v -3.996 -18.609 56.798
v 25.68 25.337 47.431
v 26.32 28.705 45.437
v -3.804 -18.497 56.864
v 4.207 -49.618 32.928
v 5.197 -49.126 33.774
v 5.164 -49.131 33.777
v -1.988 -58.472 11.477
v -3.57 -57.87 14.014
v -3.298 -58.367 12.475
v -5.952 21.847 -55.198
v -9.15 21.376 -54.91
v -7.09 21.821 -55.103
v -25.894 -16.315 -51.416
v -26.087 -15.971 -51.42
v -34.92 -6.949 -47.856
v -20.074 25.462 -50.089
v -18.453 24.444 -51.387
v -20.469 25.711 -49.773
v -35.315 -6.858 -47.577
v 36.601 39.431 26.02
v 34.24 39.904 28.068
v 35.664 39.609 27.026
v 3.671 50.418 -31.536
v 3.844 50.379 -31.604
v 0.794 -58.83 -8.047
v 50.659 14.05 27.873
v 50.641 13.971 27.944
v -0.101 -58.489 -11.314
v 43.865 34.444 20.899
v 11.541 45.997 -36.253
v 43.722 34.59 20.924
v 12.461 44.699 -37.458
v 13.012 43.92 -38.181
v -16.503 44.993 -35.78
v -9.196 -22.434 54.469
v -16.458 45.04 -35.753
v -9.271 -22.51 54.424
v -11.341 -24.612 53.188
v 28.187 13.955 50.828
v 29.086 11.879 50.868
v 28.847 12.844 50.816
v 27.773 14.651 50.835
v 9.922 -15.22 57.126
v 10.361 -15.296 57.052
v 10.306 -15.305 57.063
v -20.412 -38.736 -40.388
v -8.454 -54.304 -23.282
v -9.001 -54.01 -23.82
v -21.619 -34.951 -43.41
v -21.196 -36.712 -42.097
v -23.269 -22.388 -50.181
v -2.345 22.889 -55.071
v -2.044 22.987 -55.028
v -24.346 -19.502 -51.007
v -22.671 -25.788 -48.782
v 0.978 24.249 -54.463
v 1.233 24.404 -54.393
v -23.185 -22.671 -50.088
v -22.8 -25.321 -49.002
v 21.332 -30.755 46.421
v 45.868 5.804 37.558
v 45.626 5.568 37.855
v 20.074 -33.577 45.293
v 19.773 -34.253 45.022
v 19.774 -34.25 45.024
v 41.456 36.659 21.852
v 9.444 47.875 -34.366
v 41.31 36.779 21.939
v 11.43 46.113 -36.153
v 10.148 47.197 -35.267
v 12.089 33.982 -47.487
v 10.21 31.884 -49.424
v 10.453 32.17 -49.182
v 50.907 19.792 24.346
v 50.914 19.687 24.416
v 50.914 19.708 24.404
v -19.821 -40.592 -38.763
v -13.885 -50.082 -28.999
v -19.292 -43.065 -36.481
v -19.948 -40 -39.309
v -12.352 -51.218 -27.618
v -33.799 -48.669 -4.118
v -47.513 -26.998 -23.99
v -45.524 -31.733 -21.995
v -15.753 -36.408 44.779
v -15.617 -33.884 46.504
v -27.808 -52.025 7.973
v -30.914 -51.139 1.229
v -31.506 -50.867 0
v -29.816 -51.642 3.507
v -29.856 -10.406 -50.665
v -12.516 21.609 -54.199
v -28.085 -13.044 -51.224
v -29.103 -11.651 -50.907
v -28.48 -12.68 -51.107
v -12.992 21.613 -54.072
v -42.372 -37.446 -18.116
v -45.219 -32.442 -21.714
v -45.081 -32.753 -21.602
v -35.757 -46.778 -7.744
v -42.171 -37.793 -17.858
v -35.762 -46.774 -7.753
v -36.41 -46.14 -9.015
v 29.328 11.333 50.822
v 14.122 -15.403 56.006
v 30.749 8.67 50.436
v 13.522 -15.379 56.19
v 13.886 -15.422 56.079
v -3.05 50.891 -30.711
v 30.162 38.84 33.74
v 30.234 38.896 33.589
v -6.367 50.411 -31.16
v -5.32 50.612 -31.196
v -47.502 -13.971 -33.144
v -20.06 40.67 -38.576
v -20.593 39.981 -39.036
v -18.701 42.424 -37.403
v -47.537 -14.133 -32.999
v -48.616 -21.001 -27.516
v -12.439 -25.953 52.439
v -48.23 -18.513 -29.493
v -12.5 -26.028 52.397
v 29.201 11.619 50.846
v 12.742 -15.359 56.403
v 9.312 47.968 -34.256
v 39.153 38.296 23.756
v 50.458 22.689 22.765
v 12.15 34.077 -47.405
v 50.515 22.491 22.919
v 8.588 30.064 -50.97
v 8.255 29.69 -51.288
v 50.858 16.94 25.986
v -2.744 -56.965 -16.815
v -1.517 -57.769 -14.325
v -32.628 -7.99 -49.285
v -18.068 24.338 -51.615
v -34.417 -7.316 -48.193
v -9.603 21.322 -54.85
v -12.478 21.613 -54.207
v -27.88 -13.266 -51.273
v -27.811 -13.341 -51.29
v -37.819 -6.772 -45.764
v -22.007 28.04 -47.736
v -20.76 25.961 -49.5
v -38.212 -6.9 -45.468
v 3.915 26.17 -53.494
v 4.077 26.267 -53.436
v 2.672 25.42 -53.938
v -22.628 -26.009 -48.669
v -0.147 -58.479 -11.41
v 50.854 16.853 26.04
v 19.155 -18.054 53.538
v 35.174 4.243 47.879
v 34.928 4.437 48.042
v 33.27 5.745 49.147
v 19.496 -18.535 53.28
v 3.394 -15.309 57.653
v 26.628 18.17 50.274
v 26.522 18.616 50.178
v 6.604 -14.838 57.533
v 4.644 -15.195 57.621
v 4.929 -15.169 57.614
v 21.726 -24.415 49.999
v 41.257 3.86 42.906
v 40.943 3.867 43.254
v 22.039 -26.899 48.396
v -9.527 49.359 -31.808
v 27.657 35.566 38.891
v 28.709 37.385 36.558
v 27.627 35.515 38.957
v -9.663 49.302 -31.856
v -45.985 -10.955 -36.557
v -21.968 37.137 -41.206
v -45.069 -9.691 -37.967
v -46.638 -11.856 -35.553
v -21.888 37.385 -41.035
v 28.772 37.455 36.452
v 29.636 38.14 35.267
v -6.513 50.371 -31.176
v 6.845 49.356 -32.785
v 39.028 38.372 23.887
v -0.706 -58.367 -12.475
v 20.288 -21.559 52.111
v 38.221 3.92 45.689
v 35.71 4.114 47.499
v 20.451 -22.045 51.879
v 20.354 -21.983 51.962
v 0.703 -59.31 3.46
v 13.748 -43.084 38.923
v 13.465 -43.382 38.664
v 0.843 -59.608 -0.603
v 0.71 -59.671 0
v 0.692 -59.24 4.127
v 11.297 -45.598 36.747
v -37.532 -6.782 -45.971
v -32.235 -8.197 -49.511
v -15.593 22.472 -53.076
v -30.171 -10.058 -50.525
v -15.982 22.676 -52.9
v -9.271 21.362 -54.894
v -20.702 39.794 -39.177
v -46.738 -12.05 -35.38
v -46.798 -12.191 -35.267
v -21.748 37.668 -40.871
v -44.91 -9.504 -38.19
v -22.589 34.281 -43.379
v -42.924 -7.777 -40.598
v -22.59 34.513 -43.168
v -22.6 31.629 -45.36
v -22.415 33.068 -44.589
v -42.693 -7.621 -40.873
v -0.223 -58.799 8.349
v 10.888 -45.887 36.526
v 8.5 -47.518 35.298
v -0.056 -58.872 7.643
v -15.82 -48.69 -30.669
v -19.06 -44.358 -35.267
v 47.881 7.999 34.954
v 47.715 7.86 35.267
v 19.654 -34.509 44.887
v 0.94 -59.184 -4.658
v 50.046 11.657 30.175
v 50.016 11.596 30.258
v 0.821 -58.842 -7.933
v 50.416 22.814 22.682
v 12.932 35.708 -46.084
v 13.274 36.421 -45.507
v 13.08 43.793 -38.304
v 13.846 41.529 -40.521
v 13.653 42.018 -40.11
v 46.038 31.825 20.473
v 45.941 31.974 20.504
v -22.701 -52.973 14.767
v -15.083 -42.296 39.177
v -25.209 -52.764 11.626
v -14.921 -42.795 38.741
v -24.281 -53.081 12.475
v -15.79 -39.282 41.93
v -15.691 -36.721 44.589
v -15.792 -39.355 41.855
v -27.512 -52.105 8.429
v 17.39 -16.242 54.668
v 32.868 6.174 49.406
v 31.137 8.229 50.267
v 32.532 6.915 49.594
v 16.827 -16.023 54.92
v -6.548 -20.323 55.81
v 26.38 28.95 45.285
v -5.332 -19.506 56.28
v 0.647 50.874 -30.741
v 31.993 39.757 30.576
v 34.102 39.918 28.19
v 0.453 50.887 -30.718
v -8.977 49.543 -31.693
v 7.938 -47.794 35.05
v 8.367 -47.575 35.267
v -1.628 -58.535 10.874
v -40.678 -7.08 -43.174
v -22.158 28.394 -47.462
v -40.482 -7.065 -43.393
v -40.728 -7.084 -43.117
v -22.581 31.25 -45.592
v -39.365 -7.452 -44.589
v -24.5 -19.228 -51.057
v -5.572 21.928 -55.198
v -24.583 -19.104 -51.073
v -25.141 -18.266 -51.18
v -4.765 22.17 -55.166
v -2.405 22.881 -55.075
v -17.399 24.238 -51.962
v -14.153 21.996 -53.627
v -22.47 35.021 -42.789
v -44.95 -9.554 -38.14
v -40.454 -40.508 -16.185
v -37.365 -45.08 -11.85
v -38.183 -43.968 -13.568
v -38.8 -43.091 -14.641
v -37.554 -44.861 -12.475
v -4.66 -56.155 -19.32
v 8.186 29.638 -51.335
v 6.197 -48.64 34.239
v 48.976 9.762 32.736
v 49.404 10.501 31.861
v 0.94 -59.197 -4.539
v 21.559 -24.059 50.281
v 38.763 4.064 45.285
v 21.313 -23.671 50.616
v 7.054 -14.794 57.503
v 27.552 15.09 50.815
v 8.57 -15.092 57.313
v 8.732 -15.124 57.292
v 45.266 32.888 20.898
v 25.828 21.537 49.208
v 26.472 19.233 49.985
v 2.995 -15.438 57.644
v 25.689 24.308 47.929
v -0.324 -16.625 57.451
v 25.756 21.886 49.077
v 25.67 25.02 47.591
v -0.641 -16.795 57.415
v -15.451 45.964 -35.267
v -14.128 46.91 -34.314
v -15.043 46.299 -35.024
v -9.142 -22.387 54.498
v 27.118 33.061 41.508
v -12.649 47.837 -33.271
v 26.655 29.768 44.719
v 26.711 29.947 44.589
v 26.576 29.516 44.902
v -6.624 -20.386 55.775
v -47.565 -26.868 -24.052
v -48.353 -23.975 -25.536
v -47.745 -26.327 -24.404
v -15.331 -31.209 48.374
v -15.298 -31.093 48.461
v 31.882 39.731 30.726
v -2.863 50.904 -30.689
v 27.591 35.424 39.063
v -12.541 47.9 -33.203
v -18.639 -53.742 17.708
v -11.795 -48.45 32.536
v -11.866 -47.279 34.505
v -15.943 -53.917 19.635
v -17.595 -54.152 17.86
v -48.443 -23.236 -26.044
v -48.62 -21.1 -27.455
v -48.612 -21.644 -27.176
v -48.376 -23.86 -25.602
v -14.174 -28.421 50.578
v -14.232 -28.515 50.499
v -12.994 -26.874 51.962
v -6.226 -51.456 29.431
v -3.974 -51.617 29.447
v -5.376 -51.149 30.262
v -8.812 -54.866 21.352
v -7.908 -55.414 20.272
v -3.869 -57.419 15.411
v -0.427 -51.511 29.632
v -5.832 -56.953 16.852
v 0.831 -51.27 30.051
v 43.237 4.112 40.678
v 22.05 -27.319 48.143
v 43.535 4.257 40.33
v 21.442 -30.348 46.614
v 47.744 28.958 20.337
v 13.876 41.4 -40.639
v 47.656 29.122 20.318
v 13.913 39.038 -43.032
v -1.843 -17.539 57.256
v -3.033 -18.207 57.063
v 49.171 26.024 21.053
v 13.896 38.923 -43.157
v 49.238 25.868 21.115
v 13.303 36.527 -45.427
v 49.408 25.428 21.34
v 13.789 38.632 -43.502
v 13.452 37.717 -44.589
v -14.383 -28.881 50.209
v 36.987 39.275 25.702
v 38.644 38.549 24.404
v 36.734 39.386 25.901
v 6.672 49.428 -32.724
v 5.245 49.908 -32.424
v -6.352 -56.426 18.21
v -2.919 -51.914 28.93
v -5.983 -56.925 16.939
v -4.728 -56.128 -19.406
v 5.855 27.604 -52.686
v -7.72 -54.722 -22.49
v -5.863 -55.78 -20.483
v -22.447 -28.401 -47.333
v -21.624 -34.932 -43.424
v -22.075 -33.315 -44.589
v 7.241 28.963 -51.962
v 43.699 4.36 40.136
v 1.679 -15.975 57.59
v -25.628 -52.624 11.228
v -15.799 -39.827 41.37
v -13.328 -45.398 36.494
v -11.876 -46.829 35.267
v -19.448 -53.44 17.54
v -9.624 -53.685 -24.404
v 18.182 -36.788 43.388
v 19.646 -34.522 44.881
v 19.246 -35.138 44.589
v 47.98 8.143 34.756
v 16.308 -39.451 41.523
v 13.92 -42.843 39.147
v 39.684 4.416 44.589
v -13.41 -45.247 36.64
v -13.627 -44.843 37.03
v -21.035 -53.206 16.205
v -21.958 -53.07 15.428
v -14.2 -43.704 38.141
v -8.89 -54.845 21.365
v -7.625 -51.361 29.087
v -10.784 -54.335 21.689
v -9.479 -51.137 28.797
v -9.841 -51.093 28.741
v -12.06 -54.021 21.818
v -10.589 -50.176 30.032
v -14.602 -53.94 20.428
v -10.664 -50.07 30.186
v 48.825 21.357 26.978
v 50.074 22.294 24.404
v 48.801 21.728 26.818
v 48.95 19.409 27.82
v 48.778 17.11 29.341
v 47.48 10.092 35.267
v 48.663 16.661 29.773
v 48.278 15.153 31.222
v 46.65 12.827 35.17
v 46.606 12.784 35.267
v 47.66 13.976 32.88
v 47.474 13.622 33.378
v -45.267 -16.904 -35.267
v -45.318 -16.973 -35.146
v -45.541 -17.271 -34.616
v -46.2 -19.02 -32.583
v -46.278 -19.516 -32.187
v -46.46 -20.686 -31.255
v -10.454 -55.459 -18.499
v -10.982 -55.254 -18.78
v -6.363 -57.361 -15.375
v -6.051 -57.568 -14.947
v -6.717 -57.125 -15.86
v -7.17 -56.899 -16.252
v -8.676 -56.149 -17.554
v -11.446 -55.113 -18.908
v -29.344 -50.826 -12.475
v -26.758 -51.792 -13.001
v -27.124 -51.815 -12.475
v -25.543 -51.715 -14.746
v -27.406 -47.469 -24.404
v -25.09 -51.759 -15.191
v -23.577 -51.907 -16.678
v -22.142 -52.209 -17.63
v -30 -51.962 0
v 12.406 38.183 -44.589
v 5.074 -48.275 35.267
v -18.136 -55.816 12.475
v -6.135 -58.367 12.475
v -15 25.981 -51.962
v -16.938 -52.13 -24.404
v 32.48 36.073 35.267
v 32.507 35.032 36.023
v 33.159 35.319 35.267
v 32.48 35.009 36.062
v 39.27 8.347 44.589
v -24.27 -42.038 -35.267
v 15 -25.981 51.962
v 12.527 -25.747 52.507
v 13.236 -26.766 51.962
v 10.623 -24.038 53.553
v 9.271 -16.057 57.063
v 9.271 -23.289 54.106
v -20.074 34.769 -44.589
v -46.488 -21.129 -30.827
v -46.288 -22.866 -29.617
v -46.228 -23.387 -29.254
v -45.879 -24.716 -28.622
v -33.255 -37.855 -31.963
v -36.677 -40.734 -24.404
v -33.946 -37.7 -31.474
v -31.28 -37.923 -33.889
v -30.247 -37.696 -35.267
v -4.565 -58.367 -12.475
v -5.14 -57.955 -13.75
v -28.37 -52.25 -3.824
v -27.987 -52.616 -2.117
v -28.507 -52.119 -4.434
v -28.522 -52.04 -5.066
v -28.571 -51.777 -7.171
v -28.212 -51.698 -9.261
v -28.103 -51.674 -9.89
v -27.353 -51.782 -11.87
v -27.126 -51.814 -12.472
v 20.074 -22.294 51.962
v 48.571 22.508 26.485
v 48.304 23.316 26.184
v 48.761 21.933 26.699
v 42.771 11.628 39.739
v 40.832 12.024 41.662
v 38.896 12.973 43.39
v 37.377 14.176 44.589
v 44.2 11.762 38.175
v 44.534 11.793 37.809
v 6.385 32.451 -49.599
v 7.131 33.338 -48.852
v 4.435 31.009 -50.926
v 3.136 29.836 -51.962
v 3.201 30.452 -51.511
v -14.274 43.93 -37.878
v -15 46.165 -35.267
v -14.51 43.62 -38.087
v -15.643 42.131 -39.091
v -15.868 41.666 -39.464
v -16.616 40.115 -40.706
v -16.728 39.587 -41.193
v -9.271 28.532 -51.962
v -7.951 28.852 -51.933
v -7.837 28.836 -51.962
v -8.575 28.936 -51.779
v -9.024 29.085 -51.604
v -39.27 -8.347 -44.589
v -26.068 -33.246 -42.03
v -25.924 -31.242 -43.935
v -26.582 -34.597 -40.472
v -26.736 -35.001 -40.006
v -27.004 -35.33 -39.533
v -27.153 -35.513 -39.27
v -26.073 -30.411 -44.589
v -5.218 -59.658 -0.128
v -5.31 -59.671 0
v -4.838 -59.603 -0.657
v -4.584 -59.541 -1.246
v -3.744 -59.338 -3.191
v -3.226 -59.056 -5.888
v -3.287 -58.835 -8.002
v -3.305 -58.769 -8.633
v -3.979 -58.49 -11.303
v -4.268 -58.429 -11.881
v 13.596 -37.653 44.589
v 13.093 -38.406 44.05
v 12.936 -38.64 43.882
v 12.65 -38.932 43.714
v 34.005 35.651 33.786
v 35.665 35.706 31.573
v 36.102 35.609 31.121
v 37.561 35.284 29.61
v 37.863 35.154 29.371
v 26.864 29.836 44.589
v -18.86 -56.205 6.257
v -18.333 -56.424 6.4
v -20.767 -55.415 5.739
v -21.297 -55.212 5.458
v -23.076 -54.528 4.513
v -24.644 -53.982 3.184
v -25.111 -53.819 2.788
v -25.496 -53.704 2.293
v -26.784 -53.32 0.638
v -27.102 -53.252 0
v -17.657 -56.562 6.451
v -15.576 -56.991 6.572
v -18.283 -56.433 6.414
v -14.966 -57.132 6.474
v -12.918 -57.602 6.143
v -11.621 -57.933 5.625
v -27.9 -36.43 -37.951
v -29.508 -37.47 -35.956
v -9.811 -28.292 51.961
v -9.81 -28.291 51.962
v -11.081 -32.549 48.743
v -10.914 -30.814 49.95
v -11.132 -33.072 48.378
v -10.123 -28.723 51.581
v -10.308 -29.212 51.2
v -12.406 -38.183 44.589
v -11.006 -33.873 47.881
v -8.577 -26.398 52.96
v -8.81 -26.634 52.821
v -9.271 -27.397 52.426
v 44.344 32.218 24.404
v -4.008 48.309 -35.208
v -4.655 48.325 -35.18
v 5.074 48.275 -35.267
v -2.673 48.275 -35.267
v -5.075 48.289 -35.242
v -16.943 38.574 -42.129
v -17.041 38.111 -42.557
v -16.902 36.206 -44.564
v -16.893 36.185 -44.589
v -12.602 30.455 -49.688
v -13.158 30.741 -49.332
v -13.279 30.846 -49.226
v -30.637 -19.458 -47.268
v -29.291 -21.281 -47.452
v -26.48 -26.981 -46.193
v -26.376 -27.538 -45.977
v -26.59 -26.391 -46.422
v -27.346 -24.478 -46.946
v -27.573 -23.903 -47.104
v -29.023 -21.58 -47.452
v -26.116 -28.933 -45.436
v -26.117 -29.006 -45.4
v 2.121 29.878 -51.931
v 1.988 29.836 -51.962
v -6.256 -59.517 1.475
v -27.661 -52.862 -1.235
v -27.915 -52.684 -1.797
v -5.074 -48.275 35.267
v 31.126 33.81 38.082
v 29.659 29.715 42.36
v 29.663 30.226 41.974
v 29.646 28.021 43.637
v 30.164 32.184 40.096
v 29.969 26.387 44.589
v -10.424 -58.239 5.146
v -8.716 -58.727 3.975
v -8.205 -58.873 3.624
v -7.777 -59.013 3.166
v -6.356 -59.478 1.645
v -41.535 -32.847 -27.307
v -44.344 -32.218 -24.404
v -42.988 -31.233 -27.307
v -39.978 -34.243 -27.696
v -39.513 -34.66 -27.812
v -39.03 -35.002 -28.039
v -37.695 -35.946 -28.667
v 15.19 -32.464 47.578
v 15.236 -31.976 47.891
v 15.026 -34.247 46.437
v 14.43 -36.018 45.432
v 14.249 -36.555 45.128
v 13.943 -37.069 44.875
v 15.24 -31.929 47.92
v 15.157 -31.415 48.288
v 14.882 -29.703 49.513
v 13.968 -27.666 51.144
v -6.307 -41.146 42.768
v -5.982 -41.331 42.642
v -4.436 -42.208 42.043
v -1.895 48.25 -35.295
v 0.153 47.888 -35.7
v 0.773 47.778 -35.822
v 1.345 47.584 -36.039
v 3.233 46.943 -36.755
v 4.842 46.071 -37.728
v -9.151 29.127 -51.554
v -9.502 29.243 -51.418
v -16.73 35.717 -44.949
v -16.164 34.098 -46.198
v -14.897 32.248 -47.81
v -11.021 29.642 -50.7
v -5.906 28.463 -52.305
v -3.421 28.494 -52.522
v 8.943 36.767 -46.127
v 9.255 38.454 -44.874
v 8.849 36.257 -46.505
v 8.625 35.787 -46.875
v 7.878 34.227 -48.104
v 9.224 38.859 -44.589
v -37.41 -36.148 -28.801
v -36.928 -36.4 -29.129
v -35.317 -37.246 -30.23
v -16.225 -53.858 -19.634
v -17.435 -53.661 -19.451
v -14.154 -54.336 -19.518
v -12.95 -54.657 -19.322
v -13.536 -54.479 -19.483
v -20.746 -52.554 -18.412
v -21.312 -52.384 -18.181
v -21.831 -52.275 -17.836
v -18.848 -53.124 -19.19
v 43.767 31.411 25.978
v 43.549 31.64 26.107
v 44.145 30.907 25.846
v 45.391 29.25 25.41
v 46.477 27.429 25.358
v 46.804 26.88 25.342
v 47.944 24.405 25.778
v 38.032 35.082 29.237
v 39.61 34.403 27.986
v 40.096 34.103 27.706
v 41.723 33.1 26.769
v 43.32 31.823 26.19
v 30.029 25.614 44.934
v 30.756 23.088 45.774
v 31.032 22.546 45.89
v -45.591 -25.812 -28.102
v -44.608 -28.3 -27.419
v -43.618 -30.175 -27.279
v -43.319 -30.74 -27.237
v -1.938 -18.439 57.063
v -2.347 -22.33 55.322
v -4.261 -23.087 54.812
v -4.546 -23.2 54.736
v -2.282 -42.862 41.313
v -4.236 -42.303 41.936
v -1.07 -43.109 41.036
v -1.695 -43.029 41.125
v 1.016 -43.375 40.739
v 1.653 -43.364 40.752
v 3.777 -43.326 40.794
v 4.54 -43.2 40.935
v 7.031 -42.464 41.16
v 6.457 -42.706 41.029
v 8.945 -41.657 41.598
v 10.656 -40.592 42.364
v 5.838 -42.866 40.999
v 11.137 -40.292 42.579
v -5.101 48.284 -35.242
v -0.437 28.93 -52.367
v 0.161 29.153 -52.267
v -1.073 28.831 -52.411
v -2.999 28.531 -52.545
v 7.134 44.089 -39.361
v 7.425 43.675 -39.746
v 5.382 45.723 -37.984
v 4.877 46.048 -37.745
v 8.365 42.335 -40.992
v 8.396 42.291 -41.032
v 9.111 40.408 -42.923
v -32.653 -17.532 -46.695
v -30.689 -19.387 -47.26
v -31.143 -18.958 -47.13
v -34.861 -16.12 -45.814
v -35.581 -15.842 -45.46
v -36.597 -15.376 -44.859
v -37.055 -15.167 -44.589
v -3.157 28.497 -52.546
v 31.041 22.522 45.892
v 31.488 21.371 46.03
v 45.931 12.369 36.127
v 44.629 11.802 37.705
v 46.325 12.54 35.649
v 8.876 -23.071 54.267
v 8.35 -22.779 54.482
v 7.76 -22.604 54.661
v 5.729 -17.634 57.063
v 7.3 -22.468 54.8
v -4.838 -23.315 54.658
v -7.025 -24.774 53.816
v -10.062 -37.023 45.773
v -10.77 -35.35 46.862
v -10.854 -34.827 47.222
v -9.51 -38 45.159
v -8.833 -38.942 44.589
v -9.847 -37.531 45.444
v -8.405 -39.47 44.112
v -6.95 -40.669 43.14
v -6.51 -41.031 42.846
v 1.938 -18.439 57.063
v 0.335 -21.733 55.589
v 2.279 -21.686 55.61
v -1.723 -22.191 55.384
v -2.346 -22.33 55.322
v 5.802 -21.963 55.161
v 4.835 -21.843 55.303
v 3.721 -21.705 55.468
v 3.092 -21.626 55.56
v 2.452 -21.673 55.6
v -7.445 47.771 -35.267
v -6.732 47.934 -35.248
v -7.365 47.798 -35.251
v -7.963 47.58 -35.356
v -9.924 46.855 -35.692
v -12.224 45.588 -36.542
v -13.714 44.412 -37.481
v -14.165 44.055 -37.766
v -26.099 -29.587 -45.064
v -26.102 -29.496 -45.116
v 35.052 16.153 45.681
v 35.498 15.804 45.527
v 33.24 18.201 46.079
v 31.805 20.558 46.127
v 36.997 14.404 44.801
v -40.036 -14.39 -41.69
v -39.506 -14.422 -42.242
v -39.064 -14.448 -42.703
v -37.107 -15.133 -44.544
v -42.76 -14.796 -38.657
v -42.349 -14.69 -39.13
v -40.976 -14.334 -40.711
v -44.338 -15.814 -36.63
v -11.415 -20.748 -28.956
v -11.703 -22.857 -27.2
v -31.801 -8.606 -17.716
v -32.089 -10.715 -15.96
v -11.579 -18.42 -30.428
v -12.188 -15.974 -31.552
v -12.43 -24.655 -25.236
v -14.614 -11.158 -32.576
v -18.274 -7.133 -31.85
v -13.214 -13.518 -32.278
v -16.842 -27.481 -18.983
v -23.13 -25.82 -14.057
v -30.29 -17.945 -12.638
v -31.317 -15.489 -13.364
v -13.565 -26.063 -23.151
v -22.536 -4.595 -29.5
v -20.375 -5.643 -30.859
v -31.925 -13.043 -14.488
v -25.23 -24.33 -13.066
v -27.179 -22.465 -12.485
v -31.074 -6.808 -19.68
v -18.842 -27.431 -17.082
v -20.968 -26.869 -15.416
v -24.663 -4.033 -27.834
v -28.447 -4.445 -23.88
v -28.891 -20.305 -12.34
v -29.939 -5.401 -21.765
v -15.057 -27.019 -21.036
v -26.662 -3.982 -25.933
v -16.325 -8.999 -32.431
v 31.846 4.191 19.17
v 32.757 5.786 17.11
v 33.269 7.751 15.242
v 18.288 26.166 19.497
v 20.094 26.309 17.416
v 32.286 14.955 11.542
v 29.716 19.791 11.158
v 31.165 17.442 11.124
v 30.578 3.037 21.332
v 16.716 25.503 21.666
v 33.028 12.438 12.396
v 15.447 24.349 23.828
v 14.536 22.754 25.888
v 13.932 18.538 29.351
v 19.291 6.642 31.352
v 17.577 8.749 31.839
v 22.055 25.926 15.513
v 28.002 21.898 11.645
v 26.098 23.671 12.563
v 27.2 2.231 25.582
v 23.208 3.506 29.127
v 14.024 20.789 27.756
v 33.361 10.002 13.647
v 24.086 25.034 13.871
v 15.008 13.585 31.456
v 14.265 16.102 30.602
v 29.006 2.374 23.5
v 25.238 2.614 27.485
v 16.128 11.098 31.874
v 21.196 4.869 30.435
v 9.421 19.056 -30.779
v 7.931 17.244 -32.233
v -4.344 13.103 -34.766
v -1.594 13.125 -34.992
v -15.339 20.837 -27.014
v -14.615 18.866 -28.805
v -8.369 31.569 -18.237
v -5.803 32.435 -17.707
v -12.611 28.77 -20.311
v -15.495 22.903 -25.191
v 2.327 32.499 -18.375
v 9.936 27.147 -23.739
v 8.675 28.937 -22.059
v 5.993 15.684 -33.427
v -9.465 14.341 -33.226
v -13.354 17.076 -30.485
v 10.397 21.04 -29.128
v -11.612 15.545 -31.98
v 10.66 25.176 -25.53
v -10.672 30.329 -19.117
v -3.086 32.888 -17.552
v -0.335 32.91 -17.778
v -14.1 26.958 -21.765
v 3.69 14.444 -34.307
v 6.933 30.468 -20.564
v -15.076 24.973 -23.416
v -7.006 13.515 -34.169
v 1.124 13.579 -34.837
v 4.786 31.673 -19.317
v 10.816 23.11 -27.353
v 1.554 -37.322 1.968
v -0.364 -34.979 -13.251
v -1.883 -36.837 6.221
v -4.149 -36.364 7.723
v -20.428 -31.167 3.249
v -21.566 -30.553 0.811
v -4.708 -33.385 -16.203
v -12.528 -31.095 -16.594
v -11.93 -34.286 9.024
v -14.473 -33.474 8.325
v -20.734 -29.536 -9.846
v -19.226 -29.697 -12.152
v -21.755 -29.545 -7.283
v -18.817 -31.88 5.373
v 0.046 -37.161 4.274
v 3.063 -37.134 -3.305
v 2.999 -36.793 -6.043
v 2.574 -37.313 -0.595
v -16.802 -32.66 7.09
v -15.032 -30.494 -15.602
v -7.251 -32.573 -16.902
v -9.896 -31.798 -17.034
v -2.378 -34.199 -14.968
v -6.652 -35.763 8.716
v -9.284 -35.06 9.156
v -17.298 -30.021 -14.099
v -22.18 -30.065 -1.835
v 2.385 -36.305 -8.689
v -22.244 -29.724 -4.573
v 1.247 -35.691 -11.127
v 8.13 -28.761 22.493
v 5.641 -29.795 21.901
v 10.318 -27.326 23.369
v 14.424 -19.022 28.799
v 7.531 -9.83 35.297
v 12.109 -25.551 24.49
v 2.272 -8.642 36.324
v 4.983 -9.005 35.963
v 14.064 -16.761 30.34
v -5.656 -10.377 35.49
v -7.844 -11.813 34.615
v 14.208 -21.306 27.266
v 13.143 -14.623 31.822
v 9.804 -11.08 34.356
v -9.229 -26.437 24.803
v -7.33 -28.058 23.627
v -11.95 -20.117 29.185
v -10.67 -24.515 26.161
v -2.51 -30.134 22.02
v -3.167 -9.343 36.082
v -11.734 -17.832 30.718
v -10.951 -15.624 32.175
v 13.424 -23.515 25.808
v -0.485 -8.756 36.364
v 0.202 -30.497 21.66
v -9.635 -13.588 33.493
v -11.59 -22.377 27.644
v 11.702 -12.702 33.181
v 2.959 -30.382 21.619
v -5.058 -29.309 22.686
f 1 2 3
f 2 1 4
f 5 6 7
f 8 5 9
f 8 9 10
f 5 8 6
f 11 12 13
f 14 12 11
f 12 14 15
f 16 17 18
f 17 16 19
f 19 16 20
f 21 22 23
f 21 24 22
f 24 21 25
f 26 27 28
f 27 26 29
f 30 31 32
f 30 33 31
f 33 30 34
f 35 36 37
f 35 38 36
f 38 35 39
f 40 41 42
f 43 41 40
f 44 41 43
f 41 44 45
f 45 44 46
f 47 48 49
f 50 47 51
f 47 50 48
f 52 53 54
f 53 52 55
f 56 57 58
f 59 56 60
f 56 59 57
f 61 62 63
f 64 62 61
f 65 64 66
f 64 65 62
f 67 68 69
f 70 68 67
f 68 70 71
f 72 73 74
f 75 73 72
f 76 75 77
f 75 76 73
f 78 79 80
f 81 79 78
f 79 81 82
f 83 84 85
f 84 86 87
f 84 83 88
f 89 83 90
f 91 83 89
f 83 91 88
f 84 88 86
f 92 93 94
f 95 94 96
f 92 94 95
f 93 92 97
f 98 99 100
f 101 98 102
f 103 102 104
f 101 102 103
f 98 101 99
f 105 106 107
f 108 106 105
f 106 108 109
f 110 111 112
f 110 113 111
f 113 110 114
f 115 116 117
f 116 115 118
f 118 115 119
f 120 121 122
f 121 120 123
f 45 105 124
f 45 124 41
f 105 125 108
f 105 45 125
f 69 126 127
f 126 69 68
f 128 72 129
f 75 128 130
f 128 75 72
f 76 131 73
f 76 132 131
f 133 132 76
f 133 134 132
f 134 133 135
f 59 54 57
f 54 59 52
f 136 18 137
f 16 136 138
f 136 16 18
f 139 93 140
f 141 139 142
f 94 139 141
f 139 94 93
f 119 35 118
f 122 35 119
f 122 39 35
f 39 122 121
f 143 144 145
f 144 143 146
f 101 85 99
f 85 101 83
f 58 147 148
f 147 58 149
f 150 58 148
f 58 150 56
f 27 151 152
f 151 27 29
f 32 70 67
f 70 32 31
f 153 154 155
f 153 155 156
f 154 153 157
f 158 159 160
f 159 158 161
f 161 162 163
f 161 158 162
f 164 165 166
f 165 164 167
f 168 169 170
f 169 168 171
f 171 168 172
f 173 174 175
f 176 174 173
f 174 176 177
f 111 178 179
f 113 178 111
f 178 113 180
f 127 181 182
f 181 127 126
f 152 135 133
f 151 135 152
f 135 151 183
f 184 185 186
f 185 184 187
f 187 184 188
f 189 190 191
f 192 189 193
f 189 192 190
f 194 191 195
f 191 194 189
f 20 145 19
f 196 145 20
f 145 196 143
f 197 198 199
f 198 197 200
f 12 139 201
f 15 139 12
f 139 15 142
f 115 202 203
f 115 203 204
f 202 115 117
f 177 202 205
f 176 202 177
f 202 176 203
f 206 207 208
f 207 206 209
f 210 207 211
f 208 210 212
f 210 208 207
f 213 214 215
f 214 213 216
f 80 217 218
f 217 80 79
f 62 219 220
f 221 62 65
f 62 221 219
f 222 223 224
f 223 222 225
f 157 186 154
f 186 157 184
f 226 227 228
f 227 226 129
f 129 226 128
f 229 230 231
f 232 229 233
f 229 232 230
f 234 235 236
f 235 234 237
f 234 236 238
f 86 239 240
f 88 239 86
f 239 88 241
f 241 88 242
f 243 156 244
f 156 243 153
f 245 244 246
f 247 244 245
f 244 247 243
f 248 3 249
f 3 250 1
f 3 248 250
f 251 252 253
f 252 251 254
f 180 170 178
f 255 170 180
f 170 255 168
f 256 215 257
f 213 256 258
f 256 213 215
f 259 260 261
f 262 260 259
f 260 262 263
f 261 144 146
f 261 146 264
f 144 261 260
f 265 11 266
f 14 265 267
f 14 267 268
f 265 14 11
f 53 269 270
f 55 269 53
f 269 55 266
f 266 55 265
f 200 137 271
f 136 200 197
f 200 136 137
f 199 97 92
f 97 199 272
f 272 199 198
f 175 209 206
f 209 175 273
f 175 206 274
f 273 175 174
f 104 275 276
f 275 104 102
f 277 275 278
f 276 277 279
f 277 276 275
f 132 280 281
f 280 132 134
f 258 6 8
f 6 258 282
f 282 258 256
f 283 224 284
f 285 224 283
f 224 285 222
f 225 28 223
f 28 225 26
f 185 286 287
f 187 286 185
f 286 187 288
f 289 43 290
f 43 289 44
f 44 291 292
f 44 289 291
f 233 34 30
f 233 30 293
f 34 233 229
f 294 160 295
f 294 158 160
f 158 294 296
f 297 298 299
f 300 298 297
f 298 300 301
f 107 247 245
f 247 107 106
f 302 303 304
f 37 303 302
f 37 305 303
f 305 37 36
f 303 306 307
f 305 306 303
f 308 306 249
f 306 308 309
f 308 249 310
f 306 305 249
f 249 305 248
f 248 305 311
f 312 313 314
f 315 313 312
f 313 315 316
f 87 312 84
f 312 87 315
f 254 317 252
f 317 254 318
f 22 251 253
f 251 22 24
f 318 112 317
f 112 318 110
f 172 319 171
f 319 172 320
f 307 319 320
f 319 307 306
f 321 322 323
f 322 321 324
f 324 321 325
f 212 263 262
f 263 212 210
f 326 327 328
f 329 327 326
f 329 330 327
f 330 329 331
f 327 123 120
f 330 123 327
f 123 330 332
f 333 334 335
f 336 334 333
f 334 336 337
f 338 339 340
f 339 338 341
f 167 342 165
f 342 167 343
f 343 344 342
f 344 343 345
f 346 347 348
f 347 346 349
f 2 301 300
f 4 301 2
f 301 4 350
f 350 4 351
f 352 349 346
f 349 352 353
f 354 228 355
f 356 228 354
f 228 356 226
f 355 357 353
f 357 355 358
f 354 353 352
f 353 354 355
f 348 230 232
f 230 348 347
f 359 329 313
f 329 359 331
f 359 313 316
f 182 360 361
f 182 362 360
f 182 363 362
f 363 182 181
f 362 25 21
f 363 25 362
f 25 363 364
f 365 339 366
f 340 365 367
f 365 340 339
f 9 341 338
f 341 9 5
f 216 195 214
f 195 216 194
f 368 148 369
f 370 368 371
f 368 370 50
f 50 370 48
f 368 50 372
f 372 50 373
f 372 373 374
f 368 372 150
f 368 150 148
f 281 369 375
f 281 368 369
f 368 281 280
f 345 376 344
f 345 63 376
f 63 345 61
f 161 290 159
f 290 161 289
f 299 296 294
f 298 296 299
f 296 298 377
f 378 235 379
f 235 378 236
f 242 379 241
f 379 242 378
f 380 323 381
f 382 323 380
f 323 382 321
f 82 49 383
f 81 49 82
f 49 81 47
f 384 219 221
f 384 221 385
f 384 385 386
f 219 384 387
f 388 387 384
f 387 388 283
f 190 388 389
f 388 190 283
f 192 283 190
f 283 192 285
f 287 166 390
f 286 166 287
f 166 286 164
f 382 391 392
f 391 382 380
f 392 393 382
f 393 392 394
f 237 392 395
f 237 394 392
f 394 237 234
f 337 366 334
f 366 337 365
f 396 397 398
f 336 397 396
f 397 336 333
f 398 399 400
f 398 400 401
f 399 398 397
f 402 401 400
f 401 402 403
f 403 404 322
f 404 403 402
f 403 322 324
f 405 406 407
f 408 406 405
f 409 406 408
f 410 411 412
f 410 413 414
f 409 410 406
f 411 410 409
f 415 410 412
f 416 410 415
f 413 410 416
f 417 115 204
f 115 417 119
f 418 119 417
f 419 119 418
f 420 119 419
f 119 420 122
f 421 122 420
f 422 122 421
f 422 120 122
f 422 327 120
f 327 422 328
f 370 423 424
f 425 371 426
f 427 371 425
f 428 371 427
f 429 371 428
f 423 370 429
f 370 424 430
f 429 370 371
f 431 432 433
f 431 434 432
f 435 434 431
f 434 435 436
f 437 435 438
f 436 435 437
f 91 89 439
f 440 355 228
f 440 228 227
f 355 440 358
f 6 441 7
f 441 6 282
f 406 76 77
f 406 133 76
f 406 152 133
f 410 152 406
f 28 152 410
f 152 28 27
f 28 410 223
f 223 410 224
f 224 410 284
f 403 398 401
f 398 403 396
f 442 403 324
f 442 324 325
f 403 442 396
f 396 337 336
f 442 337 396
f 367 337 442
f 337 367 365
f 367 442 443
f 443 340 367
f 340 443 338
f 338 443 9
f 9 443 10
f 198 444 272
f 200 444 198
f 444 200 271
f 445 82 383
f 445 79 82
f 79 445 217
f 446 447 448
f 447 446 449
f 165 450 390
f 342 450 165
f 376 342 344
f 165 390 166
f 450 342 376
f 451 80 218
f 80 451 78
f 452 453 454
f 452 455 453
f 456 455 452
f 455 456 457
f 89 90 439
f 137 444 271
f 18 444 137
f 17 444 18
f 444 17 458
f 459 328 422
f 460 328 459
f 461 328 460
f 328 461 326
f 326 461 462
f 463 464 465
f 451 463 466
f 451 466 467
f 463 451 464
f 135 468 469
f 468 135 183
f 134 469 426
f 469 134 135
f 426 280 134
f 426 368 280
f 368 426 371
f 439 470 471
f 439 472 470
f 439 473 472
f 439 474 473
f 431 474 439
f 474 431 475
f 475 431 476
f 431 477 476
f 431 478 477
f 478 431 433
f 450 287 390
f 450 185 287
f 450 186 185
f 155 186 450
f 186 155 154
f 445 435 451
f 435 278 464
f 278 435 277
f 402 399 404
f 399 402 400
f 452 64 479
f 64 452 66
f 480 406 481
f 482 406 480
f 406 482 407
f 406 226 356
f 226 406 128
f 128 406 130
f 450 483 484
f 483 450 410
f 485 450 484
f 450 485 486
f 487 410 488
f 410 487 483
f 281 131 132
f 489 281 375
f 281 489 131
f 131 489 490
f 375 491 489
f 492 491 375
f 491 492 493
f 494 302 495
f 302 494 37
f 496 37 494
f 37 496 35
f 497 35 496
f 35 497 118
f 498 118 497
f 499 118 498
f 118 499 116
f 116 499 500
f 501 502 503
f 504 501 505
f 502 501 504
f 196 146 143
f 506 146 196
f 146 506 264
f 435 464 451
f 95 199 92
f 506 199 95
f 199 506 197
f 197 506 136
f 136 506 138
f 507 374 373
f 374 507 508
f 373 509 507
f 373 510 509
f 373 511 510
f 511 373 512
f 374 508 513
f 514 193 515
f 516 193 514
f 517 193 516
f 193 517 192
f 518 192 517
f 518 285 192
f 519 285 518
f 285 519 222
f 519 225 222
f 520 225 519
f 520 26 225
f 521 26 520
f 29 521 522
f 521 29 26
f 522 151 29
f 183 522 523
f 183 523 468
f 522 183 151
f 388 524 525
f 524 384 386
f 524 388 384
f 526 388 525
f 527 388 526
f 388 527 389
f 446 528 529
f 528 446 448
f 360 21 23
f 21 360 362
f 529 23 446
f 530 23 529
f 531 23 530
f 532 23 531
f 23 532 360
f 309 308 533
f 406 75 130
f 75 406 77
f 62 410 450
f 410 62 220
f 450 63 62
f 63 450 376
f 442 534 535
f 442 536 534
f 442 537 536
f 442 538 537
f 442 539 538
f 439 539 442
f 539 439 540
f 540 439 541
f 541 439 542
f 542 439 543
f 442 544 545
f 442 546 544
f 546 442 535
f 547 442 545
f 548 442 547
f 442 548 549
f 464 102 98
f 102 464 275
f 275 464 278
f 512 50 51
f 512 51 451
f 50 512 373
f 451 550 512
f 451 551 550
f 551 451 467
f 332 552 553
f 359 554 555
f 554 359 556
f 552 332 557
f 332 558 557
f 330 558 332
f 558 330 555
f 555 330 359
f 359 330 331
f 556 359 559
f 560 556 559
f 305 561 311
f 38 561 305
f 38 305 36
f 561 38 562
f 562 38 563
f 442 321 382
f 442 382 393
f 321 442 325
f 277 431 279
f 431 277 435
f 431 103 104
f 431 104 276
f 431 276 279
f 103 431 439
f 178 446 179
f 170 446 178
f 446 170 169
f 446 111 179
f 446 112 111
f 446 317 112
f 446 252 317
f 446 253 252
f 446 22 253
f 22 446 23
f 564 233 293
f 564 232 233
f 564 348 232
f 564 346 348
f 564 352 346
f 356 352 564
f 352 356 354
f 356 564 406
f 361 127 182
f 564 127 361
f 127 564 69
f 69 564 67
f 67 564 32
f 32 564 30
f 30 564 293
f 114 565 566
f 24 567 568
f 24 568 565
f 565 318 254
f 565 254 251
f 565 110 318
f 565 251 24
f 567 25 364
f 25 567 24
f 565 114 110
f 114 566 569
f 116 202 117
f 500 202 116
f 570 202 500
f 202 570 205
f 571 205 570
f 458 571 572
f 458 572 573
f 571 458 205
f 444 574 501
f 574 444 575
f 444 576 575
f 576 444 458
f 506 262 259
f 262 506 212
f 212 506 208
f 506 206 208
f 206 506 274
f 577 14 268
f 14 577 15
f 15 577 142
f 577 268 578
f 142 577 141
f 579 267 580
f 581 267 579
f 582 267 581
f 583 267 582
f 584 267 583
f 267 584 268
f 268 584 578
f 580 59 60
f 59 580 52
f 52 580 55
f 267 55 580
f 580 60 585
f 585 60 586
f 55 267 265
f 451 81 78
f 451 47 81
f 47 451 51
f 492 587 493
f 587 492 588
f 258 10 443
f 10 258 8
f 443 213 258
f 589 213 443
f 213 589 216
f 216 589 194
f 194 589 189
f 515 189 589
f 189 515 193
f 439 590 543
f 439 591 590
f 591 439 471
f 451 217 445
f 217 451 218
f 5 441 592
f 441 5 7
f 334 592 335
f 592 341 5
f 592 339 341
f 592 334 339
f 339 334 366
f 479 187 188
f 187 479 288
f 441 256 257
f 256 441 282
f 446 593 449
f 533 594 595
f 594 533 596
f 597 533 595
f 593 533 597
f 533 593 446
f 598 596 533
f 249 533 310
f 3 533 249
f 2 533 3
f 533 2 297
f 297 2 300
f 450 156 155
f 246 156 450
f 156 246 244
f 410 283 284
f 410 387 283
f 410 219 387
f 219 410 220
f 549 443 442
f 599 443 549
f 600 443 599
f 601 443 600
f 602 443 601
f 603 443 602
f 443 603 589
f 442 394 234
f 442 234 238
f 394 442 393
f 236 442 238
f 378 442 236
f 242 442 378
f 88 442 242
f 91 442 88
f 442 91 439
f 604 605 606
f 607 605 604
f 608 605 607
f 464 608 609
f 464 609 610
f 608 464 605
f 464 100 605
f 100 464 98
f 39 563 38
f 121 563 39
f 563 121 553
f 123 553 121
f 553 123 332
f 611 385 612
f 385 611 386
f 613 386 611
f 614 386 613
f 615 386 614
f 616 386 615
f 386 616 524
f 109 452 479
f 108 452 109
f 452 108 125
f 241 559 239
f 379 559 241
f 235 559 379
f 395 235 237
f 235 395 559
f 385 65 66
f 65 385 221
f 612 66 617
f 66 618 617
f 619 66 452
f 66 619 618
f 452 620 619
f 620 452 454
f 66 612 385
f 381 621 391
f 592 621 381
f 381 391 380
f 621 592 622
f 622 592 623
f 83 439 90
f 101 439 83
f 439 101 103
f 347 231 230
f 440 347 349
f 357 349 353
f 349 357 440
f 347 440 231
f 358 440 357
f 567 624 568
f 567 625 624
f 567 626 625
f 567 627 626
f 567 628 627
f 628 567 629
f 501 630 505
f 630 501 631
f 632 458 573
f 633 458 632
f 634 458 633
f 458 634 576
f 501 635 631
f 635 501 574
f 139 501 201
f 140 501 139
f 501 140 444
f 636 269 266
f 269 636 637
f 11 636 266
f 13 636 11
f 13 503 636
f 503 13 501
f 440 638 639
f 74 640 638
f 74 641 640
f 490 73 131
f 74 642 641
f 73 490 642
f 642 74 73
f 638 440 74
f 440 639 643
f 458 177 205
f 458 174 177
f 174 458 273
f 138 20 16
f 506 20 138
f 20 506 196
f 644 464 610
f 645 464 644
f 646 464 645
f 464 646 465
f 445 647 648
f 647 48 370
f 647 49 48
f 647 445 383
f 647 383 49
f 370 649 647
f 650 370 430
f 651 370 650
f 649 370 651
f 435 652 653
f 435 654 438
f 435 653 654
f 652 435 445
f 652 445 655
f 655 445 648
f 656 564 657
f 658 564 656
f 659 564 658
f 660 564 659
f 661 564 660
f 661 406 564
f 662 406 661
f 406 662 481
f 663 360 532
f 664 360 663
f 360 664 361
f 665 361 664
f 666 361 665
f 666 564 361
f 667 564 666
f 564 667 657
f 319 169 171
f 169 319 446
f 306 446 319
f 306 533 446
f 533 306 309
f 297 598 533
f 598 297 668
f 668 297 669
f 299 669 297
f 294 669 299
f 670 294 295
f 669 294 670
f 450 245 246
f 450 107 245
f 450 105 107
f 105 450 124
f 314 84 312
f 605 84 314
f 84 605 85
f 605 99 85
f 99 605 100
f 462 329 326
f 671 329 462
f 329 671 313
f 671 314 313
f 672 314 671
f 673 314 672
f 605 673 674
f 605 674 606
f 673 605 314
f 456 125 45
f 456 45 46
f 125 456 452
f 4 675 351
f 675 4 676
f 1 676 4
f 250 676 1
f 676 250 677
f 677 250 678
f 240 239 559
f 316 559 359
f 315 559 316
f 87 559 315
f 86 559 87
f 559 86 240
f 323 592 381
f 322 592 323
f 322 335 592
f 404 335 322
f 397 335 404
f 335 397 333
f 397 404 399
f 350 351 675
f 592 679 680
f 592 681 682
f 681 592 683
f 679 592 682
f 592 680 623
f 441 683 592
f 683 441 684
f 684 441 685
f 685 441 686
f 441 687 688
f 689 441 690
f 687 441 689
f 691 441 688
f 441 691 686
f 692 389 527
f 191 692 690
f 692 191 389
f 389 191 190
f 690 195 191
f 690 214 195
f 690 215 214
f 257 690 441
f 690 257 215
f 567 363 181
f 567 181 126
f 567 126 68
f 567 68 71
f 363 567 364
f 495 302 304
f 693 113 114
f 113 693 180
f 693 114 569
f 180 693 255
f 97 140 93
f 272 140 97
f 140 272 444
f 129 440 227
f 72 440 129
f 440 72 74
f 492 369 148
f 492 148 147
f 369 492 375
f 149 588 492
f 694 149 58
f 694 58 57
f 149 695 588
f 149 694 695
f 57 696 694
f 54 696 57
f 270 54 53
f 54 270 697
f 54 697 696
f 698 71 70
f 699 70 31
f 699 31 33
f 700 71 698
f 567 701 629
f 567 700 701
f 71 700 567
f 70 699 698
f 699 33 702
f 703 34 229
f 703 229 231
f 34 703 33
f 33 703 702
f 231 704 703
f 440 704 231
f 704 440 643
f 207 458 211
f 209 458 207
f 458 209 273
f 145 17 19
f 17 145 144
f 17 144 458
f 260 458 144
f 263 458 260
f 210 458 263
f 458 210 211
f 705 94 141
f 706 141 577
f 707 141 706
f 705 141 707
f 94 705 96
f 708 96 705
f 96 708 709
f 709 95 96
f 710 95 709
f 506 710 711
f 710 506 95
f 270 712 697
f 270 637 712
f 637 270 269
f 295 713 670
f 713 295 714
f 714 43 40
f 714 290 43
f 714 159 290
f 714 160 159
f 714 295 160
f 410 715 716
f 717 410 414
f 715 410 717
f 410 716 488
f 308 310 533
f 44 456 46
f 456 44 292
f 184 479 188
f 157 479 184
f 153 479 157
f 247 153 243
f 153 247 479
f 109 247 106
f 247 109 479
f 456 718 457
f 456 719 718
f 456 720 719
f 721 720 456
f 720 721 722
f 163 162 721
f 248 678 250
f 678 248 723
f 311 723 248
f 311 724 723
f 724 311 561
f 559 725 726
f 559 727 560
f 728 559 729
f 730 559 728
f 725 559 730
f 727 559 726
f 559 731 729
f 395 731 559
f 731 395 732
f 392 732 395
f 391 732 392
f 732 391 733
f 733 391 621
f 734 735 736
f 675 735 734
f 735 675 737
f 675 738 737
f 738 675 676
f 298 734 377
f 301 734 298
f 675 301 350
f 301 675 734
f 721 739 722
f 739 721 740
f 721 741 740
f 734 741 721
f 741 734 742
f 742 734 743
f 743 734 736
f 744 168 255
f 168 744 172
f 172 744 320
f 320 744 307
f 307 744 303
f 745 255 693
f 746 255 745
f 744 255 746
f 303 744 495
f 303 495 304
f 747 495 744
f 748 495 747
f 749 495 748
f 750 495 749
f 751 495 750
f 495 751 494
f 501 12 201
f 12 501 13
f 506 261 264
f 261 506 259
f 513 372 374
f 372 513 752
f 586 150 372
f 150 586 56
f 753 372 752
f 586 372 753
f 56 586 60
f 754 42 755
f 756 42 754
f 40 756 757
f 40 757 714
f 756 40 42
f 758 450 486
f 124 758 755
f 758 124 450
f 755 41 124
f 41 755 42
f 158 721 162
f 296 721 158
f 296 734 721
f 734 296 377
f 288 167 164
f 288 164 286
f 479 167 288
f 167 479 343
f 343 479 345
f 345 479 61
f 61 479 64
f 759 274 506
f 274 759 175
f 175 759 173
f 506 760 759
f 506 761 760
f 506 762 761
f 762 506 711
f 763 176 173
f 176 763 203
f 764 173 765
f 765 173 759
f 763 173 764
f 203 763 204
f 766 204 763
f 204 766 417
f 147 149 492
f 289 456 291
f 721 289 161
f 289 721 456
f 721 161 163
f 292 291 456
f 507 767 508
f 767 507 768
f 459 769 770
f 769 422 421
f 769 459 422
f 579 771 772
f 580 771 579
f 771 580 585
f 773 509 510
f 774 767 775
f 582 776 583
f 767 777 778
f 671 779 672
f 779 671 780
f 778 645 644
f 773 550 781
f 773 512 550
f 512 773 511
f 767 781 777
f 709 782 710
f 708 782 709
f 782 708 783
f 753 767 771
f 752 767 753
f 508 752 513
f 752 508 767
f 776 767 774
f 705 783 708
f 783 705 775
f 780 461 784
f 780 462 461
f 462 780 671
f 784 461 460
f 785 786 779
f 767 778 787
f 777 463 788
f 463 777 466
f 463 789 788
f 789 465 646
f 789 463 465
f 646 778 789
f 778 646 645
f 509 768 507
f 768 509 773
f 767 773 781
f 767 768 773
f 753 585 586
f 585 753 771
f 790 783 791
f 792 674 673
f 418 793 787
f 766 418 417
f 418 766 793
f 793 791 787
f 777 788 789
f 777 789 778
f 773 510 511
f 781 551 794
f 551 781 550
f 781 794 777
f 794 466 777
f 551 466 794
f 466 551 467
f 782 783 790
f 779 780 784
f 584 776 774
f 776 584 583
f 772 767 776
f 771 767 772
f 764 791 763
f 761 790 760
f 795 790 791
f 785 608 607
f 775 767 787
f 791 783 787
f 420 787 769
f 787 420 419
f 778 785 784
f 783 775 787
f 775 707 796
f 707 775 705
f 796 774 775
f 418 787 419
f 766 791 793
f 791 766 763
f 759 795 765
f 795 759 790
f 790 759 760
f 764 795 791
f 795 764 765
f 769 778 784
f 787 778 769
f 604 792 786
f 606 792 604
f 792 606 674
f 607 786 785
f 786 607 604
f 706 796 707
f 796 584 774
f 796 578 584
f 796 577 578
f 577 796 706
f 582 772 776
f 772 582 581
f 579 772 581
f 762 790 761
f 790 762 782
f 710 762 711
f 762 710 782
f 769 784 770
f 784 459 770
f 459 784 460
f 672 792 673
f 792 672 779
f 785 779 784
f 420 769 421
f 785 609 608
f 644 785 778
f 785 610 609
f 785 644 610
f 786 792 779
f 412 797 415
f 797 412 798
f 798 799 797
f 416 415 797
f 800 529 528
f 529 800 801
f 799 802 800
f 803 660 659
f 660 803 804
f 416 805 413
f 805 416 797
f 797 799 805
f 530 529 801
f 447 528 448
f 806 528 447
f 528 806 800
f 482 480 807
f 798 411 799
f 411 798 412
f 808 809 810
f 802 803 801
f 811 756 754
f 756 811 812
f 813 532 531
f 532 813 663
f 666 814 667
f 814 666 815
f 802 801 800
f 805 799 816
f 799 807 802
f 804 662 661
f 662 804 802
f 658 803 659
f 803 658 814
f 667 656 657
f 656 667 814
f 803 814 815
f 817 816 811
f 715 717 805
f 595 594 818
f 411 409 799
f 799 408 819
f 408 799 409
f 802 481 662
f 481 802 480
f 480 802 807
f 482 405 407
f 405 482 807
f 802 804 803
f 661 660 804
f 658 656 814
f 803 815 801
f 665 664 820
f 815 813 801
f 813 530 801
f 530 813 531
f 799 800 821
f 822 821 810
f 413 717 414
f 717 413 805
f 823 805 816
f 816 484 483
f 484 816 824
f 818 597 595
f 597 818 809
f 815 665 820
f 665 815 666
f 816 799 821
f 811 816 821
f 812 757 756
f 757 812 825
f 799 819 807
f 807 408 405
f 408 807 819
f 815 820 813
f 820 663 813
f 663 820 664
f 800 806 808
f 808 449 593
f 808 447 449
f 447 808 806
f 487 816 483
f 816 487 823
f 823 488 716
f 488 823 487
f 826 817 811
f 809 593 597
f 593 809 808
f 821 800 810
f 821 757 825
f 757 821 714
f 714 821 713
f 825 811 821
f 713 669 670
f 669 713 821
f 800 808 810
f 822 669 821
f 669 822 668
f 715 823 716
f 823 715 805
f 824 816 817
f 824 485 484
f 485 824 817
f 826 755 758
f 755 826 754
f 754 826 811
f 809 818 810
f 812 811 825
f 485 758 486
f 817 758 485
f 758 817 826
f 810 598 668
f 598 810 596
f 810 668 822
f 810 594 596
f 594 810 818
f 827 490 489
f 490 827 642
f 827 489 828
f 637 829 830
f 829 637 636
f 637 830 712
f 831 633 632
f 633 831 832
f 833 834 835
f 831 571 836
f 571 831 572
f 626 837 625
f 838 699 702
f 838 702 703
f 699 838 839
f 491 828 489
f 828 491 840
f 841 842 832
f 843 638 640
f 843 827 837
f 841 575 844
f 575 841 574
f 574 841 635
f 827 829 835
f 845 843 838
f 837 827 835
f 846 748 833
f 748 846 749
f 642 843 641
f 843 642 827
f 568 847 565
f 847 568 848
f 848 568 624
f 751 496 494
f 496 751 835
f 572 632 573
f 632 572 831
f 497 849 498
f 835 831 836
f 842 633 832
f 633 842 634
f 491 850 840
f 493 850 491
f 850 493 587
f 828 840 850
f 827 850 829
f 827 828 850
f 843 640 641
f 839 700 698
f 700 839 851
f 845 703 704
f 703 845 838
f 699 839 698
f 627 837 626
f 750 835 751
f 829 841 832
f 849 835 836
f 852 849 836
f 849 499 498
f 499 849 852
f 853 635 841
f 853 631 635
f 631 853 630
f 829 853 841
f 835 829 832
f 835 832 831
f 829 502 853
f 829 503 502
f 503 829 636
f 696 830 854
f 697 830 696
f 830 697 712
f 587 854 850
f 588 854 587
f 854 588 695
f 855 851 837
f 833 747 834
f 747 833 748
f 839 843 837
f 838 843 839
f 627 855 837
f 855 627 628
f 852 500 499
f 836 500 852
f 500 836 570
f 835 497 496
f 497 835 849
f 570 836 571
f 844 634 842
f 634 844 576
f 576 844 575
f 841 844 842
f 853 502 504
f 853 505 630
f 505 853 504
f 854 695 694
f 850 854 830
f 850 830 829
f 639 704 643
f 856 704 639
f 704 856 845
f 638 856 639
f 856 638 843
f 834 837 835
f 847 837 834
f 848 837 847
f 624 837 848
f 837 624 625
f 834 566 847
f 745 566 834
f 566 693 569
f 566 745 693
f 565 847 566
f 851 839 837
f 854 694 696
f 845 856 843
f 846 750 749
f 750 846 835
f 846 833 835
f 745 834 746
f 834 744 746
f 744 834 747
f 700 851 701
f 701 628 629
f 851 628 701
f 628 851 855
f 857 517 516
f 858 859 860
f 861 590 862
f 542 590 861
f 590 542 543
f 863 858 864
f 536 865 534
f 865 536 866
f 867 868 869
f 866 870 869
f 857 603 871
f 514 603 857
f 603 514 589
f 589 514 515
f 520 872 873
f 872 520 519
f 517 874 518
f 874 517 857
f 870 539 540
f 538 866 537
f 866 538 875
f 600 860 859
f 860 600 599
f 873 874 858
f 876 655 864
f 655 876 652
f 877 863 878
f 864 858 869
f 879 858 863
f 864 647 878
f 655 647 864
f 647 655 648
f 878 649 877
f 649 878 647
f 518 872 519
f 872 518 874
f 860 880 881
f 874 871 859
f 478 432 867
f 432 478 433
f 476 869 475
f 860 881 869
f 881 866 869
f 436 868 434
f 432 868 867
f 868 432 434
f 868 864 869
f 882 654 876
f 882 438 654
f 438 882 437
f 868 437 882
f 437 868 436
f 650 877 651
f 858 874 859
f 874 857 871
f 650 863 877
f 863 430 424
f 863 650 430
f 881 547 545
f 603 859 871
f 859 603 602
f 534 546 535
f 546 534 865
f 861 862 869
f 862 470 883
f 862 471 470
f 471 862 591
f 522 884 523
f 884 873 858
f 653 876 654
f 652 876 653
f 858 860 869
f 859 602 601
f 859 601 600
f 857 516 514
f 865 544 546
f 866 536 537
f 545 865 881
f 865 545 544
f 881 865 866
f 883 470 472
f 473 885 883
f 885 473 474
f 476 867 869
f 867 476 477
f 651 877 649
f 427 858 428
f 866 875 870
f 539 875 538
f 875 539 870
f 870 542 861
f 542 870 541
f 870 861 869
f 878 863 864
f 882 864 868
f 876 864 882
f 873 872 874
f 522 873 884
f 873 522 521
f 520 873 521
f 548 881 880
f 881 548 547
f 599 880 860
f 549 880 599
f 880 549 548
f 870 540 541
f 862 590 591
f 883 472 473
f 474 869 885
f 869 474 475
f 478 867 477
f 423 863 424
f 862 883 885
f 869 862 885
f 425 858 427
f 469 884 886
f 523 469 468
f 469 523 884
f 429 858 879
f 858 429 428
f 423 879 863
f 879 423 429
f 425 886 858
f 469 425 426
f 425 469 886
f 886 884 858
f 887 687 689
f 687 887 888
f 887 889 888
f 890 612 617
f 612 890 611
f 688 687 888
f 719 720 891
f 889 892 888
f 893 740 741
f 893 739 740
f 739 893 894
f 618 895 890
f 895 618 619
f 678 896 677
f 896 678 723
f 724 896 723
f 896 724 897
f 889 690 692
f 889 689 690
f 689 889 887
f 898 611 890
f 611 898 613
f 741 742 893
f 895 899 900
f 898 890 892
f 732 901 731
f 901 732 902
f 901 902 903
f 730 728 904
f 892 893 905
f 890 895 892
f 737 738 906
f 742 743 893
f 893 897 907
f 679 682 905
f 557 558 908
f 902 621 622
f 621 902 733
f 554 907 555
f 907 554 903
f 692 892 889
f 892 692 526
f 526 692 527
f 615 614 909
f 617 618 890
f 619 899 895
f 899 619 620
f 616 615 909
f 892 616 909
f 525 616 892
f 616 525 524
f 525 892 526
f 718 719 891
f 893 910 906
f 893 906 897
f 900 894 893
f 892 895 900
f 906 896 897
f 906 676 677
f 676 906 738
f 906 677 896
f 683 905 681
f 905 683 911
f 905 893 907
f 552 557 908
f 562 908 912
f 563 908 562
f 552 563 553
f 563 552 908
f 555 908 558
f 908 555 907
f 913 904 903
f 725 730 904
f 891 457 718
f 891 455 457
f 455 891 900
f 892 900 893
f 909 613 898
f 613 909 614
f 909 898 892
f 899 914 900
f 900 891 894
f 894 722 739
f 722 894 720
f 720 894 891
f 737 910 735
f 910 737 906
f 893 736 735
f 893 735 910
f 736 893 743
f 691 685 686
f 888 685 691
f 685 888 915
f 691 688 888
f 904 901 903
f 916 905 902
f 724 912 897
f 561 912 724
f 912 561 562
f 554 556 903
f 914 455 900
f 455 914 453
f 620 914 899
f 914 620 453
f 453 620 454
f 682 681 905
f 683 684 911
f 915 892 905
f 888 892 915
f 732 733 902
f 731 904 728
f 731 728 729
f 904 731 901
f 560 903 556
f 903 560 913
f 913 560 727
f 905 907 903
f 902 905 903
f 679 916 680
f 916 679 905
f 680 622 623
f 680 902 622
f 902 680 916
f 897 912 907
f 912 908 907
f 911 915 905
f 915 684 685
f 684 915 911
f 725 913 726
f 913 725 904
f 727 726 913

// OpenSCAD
difference() {
	intersection() {
		hull() {
			rotate(a = -133.0920607597, v = [0.7032597007, -0.1967257063, 0.0000000000]) {
				rotate(a = -90.0000000000, v = [0.9748021579, 0.2230711837, -0.0000000000]) {
					cylinder(h = 60, r = 16.2000000000);
				}
			}
			rotate(a = -133.0920607597, v = [0.7032597007, -0.1967257063, 0.0000000000]) {
				rotate(a = -90.0000000000, v = [-0.9557390242, -0.2942157670, 0.0000000000]) {
					cylinder(h = 60, r = 16.2000000000);
				}
			}
			rotate(a = -133.0920607597, v = [0.7032597007, -0.1967257063, 0.0000000000]) {
				rotate(a = -15.8593487094, v = [0.1882972004, 0.1980514359, -0.0000000000]) {
					cylinder(h = 60, r = 16.2000000000);
				}
			}
			rotate(a = -133.0920607597, v = [0.7032597007, -0.1967257063, 0.0000000000]) {
				rotate(a = -130.4448145546, v = [0.7346408975, -0.1986734711, 0.0000000000]) {
					cylinder(h = 60, r = 16.2000000000);
				}
			}
			rotate(a = -133.0920607597, v = [0.7032597007, -0.1967257063, 0.0000000000]) {
				rotate(a = -162.2037640762, v = [-0.2842856105, -0.1122188565, 0.0000000000]) {
					cylinder(h = 60, r = 16.2000000000);
				}
			}
		}
		sphere(r = 60);
	}
	union() {
		rotate(a = -133.0920607597, v = [0.7032597007, -0.1967257063, 0.0000000000]) {
			rotate(a = -90.0000000000, v = [0.9748021579, 0.2230711837, -0.0000000000]) {
				translate(v = [0, 0, 35]) {
					cylinder(h = 100, r = 13.2000000000);
				}
			}
		}
		rotate(a = -133.0920607597, v = [0.7032597007, -0.1967257063, 0.0000000000]) {
			rotate(a = -90.0000000000, v = [-0.9557390242, -0.2942157670, 0.0000000000]) {
				translate(v = [0, 0, 35]) {
					cylinder(h = 100, r = 13.2000000000);
				}
			}
		}
		rotate(a = -133.0920607597, v = [0.7032597007, -0.1967257063, 0.0000000000]) {
			rotate(a = -15.8593487094, v = [0.1882972004, 0.1980514359, -0.0000000000]) {
				translate(v = [0, 0, 35]) {
					cylinder(h = 100, r = 13.2000000000);
				}
			}
		}
		rotate(a = -133.0920607597, v = [0.7032597007, -0.1967257063, 0.0000000000]) {
			rotate(a = -130.4448145546, v = [0.7346408975, -0.1986734711, 0.0000000000]) {
				translate(v = [0, 0, 35]) {
					cylinder(h = 100, r = 13.2000000000);
				}
			}
		}
		rotate(a = -133.0920607597, v = [0.7032597007, -0.1967257063, 0.0000000000]) {
			rotate(a = -162.2037640762, v = [-0.2842856105, -0.1122188565, 0.0000000000]) {
				translate(v = [0, 0, 35]) {
					cylinder(h = 100, r = 13.2000000000);
				}
			}
		}
	}
}
